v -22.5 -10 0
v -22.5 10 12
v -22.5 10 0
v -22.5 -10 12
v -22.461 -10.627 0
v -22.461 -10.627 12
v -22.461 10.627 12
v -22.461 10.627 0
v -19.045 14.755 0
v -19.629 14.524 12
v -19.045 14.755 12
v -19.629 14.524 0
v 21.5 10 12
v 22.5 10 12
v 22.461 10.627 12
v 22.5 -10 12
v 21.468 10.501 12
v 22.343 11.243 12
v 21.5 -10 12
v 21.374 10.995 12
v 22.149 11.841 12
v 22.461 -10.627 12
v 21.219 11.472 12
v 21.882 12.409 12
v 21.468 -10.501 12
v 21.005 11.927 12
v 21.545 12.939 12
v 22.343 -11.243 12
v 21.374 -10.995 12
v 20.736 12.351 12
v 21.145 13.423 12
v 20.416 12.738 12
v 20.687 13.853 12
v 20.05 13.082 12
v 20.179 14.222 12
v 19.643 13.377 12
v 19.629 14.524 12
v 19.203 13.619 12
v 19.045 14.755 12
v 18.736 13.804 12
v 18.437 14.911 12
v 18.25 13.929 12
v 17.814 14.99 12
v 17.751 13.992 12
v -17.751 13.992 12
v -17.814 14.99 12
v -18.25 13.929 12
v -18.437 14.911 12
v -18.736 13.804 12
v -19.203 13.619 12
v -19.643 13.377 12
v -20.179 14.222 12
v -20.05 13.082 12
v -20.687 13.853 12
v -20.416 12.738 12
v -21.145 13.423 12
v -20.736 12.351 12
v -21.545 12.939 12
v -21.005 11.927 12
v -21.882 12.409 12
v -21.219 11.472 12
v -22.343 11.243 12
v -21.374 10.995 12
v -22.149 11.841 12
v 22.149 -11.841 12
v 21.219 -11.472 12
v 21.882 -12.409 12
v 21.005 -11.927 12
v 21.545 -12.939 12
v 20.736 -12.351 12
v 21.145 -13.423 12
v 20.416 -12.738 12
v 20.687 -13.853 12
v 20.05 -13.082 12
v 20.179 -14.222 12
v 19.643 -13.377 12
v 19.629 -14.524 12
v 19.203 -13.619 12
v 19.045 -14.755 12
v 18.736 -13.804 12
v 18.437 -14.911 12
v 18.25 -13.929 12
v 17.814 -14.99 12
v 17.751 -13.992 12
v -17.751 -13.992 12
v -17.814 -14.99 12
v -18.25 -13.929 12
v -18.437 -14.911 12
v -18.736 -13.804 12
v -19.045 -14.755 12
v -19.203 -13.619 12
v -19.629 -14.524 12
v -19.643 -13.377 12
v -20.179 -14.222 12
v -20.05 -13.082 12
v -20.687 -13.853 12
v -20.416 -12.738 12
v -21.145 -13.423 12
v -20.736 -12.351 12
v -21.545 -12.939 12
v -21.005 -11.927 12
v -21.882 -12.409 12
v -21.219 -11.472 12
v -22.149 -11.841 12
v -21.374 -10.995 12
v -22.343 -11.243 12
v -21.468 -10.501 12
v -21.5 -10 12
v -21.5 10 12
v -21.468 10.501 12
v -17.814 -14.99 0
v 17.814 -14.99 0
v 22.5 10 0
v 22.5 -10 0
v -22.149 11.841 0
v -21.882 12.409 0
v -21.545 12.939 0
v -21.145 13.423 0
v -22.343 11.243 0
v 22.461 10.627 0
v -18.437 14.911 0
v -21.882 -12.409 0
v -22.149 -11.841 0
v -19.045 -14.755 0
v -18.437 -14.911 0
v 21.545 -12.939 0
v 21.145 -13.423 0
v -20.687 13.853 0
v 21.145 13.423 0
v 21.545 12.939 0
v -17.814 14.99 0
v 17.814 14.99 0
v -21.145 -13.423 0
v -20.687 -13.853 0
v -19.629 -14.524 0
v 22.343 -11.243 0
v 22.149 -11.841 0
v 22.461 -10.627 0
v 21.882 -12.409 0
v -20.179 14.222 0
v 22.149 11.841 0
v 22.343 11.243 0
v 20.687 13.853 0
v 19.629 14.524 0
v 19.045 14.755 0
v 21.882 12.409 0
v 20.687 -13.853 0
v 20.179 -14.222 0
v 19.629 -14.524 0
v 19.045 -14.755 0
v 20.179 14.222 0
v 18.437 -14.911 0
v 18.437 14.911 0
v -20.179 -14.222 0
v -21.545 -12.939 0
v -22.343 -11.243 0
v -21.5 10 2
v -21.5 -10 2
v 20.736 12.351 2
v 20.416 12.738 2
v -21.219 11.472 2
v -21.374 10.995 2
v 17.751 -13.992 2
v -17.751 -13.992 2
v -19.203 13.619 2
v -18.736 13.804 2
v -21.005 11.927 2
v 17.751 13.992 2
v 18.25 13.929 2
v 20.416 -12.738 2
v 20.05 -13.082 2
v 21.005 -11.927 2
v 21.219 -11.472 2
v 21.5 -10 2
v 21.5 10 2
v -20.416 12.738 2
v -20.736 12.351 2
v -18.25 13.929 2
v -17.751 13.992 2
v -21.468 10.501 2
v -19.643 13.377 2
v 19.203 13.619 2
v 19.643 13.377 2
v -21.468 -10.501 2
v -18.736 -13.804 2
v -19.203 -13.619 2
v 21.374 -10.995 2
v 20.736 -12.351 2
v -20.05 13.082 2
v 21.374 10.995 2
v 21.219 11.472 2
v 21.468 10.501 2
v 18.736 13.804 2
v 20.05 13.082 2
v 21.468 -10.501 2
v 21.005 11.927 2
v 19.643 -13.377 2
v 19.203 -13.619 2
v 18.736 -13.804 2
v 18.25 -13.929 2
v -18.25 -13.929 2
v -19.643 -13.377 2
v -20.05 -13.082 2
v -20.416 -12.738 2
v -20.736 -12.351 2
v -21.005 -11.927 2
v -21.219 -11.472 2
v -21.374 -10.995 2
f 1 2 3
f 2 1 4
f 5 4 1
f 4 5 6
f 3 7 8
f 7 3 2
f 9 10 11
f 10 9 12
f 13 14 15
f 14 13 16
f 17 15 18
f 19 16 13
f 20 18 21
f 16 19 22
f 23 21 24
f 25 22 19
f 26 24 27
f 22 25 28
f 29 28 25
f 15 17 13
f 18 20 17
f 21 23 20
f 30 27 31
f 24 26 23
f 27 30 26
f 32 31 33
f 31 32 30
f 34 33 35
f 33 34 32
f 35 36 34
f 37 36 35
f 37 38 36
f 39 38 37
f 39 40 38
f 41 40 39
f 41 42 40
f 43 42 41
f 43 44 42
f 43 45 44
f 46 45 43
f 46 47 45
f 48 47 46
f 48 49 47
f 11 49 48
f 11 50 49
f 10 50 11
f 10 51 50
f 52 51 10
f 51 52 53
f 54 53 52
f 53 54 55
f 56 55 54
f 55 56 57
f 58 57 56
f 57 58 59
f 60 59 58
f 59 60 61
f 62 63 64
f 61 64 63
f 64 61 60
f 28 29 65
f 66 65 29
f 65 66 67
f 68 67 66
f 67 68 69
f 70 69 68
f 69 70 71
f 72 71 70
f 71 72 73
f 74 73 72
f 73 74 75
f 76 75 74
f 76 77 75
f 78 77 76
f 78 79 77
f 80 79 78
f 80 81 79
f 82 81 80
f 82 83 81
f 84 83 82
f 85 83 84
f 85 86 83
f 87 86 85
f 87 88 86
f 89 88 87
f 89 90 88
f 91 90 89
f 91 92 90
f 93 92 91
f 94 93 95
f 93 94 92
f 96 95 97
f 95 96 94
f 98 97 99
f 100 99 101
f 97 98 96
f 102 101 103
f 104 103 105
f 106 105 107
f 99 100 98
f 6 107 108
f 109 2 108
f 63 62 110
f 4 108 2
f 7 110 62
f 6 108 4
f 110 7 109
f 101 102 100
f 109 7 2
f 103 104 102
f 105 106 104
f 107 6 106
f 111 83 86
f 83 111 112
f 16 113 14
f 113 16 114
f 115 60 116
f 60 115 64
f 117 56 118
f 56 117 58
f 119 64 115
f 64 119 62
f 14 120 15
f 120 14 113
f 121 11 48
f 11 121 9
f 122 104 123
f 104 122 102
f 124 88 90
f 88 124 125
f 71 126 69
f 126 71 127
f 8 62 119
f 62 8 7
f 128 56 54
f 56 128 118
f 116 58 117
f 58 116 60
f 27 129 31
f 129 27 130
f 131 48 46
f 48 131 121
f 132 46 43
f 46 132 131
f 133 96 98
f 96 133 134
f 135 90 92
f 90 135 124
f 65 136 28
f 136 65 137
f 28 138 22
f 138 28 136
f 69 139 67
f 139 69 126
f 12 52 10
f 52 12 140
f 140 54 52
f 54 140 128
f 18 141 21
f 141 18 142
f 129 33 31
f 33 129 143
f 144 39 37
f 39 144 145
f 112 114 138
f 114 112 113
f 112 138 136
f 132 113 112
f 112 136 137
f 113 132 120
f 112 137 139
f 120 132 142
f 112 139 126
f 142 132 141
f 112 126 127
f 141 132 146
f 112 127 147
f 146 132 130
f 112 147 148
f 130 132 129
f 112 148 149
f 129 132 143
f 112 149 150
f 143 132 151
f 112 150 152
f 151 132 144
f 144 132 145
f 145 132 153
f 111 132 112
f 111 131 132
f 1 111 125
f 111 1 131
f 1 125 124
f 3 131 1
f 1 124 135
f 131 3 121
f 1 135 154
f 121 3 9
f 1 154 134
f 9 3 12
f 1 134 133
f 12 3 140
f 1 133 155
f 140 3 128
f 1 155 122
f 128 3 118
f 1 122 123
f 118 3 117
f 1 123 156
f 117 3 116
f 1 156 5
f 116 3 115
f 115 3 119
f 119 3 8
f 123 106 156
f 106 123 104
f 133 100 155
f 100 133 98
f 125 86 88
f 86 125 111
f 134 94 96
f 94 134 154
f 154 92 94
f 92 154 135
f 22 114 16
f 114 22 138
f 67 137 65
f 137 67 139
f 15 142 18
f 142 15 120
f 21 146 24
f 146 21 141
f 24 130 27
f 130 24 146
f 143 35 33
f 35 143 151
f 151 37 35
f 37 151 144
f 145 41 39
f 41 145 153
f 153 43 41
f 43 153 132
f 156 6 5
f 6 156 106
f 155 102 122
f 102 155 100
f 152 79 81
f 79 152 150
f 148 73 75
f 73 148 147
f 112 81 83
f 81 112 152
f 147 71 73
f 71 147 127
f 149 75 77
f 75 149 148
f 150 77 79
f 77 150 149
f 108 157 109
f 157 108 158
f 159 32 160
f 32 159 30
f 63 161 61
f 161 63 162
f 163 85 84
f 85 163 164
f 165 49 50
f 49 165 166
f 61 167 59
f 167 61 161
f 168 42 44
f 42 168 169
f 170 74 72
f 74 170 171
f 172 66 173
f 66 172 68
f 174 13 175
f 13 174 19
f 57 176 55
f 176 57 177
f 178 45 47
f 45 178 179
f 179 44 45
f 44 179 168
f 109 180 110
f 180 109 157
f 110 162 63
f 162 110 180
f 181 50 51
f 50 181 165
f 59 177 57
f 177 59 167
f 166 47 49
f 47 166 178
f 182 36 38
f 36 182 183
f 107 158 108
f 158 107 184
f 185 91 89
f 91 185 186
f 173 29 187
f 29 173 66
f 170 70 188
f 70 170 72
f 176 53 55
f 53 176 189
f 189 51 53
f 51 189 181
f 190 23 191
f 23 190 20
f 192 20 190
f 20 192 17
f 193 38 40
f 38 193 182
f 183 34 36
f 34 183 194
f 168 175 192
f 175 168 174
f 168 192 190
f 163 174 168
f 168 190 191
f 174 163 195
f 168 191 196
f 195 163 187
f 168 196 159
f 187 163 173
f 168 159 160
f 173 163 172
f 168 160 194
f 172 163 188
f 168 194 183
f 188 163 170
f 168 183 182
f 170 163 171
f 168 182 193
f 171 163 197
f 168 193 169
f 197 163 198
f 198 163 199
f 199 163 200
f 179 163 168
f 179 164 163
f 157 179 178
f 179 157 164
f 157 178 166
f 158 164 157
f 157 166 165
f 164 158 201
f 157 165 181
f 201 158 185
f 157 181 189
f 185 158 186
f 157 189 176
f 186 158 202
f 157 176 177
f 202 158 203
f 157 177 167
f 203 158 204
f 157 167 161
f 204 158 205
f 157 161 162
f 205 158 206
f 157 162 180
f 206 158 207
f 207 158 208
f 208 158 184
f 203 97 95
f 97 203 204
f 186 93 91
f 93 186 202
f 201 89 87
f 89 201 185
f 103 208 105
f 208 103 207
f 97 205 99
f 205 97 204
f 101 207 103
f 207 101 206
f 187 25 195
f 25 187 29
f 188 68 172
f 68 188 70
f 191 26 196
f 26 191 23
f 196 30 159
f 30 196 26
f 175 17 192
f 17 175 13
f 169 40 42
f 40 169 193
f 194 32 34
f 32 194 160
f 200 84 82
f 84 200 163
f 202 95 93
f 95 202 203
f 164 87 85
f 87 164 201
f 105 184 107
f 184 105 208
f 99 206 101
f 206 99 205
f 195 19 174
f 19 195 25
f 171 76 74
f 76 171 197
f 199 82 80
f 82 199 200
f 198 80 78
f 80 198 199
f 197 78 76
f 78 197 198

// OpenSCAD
$fn = 50;


difference() {
	union() {
		hull() {
			translate(v = [-17.5000000000, 10.0000000000, 0]) {
				cylinder(h = 12, r = 5);
			}
			translate(v = [17.5000000000, 10.0000000000, 0]) {
				cylinder(h = 12, r = 5);
			}
			translate(v = [-17.5000000000, -10.0000000000, 0]) {
				cylinder(h = 12, r = 5);
			}
			translate(v = [17.5000000000, -10.0000000000, 0]) {
				cylinder(h = 12, r = 5);
			}
		}
	}
	union() {
		translate(v = [0, 0, 2]) {
			#hull() {
				translate(v = [-17.5000000000, 10.0000000000, 0]) {
					cylinder(h = 10, r = 4);
				}
				translate(v = [17.5000000000, 10.0000000000, 0]) {
					cylinder(h = 10, r = 4);
				}
				translate(v = [-17.5000000000, -10.0000000000, 0]) {
					cylinder(h = 10, r = 4);
				}
				translate(v = [17.5000000000, -10.0000000000, 0]) {
					cylinder(h = 10, r = 4);
				}
			}
		}
	}
}
